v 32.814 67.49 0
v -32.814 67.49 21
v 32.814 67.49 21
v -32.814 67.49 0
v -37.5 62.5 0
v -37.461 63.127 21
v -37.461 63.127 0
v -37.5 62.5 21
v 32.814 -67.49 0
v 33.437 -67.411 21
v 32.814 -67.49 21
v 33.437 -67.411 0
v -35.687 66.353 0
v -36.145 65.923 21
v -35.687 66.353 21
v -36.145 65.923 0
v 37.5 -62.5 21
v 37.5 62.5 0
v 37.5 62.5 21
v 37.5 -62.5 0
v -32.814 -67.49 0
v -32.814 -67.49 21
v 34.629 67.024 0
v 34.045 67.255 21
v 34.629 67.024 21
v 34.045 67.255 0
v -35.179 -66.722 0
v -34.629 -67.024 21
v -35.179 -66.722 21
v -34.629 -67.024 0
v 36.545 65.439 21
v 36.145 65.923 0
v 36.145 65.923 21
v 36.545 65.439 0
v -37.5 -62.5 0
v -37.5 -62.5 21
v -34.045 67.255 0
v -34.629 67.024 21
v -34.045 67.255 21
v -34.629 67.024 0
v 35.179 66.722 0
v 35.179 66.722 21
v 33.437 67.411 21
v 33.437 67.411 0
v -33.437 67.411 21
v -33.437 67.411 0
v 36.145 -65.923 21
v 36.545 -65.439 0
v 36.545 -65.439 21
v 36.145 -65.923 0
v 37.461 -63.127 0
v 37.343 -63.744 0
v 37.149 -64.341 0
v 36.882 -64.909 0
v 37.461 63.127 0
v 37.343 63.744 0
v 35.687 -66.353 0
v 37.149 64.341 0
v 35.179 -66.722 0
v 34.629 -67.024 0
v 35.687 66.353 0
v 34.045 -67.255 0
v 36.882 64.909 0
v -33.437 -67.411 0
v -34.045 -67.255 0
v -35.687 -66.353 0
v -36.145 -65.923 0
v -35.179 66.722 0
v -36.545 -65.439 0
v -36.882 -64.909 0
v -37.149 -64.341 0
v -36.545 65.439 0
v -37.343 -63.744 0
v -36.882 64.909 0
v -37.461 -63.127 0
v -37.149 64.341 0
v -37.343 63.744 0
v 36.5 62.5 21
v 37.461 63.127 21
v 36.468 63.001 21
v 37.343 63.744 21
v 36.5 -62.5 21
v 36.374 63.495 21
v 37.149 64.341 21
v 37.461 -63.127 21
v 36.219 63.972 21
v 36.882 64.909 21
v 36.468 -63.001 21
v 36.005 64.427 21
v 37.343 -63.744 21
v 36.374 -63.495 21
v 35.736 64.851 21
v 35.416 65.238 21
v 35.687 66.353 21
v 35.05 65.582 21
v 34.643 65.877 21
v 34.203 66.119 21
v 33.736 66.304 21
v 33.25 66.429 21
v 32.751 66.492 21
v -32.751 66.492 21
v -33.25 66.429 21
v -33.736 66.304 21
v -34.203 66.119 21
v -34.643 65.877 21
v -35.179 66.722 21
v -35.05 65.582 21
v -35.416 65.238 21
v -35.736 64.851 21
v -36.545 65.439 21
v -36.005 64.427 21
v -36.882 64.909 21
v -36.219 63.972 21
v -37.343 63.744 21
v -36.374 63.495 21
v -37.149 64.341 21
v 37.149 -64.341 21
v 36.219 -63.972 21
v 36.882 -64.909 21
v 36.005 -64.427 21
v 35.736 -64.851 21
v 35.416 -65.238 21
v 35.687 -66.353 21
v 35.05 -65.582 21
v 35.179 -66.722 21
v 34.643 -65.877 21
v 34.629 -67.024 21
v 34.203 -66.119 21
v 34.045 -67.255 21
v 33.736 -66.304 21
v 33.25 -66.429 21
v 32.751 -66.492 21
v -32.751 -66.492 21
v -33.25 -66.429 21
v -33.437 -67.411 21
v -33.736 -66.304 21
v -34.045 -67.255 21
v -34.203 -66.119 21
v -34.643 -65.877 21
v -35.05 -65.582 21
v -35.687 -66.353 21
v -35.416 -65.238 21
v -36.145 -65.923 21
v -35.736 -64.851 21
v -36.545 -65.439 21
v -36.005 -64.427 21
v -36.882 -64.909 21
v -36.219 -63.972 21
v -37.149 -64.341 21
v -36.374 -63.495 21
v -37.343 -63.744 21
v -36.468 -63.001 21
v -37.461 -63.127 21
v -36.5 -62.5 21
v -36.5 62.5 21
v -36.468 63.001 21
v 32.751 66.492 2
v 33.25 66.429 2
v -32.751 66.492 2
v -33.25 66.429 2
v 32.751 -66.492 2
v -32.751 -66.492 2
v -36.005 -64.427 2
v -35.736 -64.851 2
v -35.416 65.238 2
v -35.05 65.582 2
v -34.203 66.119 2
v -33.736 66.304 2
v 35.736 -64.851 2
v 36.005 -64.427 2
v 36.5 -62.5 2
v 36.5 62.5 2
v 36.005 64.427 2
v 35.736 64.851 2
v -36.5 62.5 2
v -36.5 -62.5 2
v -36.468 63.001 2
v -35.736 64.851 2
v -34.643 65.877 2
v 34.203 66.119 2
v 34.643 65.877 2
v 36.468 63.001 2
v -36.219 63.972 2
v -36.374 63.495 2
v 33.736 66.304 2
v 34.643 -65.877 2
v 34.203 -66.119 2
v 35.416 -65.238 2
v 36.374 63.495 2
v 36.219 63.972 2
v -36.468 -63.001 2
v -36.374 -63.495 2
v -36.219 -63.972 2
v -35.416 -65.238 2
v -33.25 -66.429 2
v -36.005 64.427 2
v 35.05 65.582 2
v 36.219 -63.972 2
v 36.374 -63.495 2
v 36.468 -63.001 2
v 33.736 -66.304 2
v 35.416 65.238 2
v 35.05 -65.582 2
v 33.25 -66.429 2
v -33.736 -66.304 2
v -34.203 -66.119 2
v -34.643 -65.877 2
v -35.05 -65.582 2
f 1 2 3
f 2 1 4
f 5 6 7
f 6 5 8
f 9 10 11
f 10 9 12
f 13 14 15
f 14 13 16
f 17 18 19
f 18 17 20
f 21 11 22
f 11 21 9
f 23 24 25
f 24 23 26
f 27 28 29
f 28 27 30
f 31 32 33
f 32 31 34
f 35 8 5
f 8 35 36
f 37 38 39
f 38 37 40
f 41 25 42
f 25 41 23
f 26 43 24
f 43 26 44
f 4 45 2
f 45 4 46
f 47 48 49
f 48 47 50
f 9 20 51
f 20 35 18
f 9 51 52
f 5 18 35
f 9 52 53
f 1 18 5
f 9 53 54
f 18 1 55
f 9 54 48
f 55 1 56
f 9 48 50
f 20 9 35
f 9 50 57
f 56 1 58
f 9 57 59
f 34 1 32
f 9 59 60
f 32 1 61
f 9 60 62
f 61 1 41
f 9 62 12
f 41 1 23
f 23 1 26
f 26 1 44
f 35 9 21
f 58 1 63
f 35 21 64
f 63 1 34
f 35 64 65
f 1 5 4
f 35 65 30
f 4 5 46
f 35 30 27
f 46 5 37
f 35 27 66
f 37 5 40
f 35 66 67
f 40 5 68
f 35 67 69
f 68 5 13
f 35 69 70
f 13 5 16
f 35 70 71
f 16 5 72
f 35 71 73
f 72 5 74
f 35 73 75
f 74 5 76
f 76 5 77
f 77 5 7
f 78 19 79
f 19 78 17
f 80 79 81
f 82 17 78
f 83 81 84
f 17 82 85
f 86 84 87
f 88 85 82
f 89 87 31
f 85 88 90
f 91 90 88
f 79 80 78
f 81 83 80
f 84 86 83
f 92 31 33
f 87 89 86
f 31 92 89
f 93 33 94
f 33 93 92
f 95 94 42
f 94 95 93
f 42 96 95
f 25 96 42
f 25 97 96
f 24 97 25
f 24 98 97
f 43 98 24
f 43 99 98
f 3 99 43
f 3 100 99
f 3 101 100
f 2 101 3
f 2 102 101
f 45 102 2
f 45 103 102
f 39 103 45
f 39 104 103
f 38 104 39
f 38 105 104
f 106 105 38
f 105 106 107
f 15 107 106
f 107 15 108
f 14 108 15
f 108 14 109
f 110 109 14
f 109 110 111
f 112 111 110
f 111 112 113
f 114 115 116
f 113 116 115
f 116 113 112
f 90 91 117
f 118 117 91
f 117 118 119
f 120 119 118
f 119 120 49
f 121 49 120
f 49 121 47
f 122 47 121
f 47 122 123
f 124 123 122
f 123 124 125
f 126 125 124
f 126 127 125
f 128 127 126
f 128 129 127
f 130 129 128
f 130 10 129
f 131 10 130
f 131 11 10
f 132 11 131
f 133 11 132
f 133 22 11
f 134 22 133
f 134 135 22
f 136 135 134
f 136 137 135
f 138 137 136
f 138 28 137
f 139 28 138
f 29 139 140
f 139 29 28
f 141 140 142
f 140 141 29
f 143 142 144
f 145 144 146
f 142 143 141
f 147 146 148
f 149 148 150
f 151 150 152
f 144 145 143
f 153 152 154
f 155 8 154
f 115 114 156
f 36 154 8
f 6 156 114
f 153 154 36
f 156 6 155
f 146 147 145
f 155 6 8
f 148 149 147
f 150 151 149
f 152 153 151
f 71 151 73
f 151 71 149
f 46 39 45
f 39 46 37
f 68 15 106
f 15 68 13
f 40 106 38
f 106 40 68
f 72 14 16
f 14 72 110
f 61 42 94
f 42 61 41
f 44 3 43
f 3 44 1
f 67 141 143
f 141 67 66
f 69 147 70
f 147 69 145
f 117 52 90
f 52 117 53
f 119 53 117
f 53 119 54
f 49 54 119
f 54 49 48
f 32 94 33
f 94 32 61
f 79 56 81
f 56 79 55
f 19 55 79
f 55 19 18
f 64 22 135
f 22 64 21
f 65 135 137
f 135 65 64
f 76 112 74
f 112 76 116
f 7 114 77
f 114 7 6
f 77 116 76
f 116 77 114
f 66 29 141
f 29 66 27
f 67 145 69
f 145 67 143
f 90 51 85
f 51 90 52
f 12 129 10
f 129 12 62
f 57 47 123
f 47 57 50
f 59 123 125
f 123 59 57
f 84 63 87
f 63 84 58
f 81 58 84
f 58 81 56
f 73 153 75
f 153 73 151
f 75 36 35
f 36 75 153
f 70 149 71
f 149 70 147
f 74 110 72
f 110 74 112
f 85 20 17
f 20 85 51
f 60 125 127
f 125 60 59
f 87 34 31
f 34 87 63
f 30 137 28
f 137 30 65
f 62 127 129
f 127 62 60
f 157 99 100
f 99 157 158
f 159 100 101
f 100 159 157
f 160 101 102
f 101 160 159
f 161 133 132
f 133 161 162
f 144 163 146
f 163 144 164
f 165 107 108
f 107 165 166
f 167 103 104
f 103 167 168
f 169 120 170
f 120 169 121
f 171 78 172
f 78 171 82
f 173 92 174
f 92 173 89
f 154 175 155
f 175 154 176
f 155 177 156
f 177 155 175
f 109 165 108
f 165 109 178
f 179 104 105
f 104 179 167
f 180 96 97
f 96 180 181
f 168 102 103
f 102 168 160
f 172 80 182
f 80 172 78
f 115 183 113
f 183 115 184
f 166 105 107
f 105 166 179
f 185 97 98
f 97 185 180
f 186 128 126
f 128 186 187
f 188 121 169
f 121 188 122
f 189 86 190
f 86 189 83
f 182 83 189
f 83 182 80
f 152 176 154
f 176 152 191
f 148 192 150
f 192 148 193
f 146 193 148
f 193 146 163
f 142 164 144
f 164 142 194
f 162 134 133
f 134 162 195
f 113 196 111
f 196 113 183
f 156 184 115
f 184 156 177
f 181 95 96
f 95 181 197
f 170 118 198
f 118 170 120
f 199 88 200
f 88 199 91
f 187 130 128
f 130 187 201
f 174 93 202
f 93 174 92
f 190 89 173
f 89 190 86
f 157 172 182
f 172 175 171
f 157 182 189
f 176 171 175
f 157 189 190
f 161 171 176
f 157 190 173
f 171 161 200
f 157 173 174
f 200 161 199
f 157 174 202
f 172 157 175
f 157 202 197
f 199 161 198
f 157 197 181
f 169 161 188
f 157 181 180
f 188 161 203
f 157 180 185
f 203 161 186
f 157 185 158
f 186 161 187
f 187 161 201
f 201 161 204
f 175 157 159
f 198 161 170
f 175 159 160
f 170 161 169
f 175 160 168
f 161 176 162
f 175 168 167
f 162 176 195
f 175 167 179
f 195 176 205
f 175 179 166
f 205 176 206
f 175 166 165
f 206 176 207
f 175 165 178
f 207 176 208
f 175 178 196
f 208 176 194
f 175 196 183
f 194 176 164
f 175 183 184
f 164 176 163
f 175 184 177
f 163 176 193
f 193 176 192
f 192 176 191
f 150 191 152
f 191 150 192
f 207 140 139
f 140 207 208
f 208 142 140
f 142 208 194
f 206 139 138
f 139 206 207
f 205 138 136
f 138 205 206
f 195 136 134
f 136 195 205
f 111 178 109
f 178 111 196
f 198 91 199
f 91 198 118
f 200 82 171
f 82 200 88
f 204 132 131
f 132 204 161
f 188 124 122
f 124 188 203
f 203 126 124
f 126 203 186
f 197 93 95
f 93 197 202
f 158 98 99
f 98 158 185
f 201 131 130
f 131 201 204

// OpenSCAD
$fn = 50;


difference() {
	union() {
		hull() {
			translate(v = [-32.5000000000, 62.5000000000, 0]) {
				cylinder(h = 21, r = 5);
			}
			translate(v = [32.5000000000, 62.5000000000, 0]) {
				cylinder(h = 21, r = 5);
			}
			translate(v = [-32.5000000000, -62.5000000000, 0]) {
				cylinder(h = 21, r = 5);
			}
			translate(v = [32.5000000000, -62.5000000000, 0]) {
				cylinder(h = 21, r = 5);
			}
		}
	}
	union() {
		translate(v = [0, 0, 2]) {
			hull() {
				translate(v = [-32.5000000000, 62.5000000000, 0]) {
					cylinder(h = 19, r = 4);
				}
				translate(v = [32.5000000000, 62.5000000000, 0]) {
					cylinder(h = 19, r = 4);
				}
				translate(v = [-32.5000000000, -62.5000000000, 0]) {
					cylinder(h = 19, r = 4);
				}
				translate(v = [32.5000000000, -62.5000000000, 0]) {
					cylinder(h = 19, r = 4);
				}
			}
		}
	}
}
